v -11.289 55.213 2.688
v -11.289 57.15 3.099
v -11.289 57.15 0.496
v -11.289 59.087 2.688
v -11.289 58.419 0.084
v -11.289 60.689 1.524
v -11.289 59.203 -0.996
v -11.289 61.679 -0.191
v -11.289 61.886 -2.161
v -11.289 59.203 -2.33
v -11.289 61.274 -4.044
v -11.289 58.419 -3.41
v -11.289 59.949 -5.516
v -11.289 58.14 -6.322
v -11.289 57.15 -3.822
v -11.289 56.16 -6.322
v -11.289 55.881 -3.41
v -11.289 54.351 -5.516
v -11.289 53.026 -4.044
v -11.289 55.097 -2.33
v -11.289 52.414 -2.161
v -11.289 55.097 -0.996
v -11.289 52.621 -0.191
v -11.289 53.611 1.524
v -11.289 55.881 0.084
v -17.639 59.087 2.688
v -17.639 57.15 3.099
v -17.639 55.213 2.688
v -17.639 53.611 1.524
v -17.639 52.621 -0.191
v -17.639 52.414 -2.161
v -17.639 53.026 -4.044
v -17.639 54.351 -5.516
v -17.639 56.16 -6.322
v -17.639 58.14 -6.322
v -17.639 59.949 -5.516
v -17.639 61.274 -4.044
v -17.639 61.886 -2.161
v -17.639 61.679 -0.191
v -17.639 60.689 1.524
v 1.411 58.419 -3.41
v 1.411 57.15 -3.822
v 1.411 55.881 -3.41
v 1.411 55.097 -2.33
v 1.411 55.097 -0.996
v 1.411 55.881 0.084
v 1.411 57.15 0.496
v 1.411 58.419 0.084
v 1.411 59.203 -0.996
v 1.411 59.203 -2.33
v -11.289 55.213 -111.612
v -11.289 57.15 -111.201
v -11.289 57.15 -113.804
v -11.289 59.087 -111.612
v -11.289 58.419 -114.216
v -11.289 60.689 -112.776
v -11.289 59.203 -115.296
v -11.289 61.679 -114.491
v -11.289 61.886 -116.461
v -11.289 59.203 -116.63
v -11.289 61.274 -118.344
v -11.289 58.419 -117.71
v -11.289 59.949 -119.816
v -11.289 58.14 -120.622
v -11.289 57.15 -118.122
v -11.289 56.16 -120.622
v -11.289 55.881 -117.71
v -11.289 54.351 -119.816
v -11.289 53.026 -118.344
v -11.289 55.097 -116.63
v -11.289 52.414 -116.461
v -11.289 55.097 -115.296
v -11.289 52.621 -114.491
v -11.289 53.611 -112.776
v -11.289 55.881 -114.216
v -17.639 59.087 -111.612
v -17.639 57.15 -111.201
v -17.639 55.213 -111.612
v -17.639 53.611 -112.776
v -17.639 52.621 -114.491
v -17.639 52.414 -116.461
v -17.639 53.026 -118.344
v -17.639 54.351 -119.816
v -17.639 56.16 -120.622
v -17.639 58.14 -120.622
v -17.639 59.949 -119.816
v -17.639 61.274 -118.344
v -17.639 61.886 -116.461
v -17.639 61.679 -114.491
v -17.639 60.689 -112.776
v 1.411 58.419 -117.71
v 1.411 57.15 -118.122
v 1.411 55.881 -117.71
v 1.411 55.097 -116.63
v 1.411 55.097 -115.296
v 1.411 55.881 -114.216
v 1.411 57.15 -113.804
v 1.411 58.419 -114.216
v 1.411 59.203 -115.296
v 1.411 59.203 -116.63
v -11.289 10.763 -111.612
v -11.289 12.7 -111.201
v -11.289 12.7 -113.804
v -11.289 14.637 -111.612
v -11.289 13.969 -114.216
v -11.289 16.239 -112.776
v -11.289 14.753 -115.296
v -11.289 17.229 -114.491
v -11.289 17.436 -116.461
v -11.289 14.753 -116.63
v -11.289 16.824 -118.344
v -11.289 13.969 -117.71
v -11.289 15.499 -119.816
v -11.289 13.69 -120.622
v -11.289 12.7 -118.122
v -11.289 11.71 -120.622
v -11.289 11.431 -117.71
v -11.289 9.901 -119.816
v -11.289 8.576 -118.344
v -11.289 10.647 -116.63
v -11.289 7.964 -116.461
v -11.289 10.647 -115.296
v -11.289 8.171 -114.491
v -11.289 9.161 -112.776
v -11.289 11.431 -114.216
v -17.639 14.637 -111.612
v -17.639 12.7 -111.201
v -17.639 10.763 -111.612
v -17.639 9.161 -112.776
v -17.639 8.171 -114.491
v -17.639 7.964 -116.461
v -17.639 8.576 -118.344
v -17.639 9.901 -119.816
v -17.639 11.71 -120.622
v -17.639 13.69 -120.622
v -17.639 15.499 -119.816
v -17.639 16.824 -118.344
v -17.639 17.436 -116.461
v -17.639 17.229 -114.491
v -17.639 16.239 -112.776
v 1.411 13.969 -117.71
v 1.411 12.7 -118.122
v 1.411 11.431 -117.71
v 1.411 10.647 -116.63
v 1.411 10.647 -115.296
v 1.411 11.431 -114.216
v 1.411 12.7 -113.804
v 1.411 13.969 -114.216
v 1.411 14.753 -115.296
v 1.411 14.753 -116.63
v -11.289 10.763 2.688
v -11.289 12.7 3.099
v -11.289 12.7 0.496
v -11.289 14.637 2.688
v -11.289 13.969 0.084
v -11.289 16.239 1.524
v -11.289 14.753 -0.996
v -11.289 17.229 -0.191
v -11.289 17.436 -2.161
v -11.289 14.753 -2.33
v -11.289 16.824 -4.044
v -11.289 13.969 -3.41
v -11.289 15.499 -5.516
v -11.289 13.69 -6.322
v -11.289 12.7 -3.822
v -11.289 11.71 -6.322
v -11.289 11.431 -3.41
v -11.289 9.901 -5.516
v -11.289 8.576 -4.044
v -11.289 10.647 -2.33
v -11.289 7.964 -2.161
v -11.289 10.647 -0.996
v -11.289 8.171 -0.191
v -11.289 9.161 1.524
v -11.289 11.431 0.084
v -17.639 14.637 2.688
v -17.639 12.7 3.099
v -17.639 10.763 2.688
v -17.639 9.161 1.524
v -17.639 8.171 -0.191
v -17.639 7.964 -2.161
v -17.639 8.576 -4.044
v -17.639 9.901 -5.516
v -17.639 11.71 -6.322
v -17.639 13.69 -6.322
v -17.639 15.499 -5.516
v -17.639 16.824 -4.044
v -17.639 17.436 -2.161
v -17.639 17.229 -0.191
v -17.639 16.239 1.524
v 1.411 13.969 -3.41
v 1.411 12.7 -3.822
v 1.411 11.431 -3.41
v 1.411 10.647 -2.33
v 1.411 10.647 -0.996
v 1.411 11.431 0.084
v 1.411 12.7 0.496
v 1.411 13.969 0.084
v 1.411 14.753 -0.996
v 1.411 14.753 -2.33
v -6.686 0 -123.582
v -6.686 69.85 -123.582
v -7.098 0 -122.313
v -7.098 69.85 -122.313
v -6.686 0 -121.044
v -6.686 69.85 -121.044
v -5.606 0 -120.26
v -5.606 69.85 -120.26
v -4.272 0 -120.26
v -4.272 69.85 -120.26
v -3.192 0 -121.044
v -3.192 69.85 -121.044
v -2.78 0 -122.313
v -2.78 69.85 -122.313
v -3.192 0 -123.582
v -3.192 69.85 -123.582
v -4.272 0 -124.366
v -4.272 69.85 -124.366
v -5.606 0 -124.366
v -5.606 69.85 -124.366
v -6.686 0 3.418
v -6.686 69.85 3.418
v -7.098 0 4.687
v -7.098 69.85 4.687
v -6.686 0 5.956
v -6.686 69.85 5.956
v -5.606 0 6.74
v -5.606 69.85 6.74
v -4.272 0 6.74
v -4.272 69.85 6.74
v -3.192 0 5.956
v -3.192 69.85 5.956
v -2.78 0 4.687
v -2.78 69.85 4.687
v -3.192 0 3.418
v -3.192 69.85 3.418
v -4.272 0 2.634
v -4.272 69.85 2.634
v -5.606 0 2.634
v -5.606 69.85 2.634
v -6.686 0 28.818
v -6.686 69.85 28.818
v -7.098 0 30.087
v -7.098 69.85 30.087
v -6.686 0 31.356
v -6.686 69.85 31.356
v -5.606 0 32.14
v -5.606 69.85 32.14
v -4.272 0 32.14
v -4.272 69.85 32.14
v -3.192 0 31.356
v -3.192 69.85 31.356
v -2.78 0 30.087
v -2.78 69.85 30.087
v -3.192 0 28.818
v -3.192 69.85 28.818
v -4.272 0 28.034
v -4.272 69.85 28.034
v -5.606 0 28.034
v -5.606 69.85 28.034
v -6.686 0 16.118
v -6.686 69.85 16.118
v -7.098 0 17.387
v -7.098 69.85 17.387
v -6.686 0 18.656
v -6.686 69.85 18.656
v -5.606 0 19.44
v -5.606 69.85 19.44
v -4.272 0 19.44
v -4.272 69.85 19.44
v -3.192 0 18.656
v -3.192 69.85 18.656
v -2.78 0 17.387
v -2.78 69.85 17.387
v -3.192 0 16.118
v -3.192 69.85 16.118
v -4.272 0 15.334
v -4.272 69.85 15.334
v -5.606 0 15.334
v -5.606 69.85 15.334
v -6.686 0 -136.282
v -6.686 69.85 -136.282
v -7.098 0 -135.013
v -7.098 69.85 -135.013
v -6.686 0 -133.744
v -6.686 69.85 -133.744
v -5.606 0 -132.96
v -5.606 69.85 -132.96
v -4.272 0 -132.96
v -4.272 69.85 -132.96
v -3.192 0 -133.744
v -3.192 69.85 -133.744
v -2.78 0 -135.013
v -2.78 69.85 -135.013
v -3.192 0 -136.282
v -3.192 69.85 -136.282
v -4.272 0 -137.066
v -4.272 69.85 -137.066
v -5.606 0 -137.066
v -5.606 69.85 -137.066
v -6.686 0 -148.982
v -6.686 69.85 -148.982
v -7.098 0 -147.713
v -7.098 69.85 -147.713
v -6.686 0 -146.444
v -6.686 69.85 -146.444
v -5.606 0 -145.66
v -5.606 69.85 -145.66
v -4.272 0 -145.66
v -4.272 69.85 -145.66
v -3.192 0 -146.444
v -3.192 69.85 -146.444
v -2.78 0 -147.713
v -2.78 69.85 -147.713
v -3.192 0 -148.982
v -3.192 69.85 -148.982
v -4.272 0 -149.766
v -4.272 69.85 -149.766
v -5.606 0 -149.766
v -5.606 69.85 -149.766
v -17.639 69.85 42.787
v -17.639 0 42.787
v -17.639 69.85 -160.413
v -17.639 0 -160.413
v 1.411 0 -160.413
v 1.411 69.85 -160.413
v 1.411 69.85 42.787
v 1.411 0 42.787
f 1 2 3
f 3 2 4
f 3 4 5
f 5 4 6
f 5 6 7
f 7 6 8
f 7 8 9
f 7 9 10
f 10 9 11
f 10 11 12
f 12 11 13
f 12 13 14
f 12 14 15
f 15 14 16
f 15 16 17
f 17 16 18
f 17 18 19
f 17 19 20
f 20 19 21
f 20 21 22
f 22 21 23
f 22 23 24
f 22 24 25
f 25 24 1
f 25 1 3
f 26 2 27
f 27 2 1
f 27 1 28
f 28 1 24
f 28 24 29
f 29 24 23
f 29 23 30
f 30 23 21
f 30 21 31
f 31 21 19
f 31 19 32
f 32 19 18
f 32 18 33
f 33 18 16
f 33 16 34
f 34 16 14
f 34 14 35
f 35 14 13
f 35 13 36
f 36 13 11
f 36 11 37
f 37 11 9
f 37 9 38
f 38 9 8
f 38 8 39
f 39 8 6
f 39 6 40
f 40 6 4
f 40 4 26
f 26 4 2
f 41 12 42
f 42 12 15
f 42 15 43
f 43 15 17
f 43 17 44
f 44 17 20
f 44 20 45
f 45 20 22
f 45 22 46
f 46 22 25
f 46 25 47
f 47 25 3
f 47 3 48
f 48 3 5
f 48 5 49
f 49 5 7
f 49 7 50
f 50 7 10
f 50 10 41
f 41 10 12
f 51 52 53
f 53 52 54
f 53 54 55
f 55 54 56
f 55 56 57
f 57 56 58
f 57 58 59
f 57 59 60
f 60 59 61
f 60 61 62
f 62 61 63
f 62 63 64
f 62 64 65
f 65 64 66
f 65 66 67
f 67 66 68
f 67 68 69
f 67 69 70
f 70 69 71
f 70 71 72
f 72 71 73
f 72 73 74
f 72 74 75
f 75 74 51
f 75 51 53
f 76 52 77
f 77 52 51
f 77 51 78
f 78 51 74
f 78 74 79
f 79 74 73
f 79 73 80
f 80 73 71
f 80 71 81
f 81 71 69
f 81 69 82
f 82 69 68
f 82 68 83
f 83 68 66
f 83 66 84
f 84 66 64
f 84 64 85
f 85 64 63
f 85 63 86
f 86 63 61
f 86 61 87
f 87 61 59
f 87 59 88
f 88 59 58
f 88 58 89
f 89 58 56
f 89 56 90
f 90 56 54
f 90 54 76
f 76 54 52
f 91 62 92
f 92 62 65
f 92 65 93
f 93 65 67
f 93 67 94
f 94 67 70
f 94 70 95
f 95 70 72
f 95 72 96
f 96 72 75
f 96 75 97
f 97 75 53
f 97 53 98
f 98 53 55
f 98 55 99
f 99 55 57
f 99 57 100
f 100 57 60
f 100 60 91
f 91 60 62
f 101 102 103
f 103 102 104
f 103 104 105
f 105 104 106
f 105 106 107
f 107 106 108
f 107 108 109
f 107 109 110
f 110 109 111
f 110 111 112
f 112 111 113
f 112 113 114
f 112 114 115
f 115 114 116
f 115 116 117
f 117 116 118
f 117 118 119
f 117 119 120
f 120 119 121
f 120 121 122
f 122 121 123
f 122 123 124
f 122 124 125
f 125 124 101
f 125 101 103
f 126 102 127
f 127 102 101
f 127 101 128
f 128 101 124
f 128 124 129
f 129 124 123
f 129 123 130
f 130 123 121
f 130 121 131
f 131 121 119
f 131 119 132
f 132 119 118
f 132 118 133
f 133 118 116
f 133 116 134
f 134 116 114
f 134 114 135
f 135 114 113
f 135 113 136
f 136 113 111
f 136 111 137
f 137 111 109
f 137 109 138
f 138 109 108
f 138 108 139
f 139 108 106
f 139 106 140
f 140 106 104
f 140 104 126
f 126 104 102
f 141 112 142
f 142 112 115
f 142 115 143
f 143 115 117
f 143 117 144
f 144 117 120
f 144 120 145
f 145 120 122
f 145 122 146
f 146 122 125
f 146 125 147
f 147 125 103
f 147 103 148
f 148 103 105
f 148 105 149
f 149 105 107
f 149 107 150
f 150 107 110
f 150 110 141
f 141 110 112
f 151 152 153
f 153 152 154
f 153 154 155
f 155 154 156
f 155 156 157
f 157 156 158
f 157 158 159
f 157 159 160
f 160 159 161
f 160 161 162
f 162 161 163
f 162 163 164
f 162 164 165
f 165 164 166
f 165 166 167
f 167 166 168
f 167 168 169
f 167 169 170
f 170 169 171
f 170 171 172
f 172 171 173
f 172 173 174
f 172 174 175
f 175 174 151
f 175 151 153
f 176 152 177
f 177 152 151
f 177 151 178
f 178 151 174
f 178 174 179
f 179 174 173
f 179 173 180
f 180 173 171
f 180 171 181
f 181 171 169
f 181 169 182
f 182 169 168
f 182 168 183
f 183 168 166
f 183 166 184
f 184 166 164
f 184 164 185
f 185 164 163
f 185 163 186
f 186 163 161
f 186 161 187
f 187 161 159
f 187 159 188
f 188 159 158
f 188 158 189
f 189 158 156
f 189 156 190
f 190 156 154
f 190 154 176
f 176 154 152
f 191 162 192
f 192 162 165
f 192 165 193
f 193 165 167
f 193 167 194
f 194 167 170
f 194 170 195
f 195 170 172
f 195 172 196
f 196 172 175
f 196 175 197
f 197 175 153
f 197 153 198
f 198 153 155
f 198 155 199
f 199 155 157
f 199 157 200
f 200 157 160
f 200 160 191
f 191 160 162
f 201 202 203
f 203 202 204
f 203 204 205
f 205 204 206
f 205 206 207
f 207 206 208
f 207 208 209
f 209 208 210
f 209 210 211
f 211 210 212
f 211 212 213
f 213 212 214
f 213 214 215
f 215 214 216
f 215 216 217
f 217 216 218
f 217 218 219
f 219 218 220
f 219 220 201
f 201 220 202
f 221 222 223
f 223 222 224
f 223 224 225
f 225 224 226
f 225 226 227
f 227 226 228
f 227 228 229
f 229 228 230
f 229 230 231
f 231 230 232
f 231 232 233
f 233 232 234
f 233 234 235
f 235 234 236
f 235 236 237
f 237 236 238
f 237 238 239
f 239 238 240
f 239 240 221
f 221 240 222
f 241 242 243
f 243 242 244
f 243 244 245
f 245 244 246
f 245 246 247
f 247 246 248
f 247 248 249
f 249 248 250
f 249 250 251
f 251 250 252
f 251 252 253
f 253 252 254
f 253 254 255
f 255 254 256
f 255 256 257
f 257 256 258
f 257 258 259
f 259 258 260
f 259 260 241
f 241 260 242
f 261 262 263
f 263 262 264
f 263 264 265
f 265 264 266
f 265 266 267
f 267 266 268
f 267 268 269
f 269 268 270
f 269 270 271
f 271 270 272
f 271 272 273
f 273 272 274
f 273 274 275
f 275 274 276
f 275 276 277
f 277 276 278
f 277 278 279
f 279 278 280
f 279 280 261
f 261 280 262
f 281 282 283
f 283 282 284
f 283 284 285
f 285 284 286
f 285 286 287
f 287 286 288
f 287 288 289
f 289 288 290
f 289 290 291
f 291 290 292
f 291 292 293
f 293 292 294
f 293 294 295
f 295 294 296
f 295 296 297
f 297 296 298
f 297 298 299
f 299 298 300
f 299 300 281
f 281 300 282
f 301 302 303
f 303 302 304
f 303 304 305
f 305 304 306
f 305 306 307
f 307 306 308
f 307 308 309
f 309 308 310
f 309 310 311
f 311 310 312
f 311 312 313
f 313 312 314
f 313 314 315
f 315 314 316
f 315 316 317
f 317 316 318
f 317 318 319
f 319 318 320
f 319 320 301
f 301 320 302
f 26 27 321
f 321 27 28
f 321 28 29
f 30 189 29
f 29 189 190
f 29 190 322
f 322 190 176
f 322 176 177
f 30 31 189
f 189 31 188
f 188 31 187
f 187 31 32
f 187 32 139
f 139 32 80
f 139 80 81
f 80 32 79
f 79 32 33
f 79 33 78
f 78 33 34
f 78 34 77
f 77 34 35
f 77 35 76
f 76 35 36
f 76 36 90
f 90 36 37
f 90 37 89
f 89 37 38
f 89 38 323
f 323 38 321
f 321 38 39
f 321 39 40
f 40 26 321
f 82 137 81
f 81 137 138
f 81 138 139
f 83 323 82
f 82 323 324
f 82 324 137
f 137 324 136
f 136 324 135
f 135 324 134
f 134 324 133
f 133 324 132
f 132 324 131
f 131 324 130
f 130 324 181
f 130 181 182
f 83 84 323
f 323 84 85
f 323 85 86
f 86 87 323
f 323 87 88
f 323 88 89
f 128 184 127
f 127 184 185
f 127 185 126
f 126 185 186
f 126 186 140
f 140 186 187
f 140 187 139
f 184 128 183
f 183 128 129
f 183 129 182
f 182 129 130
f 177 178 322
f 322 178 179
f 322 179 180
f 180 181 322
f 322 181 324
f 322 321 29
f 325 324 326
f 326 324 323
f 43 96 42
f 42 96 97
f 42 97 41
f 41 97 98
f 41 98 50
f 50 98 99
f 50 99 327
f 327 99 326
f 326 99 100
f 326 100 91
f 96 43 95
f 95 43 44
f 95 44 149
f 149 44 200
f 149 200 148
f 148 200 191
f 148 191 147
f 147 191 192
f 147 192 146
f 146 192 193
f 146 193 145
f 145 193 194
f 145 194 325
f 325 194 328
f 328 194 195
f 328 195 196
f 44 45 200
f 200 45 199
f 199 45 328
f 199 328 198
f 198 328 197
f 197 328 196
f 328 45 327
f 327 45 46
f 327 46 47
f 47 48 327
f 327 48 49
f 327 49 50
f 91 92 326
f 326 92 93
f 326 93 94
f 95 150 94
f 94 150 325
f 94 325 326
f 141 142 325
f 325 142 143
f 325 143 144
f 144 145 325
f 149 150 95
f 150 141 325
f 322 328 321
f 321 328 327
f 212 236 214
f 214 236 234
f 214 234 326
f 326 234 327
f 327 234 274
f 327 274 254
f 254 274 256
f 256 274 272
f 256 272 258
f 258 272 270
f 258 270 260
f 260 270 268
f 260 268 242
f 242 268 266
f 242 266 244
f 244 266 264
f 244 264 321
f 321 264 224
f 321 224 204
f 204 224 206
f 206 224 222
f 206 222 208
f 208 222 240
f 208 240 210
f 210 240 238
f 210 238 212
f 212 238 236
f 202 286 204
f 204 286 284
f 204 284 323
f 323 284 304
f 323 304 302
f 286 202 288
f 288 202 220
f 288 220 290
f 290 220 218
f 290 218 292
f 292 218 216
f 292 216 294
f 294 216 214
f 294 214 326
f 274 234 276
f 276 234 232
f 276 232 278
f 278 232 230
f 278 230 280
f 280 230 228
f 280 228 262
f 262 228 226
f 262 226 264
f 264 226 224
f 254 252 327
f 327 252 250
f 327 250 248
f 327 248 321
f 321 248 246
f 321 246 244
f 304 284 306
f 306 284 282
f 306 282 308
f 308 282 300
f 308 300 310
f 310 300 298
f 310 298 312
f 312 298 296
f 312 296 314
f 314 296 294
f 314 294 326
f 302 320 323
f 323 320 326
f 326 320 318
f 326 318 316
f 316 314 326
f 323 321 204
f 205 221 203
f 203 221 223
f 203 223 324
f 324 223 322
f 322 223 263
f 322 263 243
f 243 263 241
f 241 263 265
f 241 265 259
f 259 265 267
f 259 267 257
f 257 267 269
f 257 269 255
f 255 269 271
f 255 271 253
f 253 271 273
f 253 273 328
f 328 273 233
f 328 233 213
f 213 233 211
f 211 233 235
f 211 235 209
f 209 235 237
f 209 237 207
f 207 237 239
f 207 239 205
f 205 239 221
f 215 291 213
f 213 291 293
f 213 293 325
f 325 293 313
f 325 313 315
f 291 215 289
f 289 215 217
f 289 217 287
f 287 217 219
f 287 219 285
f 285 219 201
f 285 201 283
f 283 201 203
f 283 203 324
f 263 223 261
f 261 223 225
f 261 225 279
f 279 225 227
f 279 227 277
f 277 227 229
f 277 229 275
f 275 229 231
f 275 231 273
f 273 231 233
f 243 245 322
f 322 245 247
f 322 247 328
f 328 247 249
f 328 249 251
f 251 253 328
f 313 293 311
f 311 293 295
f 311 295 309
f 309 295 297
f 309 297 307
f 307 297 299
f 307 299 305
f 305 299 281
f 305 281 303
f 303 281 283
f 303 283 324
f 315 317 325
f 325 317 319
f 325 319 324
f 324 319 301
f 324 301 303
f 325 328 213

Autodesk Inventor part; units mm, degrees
ref_plane "YZ Plane" through (0, 0, 0) normal (1, 0, 0) x (0, 1, 0)
ref_plane "XZ Plane" through (0, 0, 0) normal (0, 1, 0) x (-1, 0, 0)
ref_plane "XY Plane" through (0, 0, 0) normal (0, 0, 1) x (1, 0, 0)
sketch "Sketch1" plane through (0, 0, 0) normal (0, 1, 0) x (-1, 0, 0)
  line L0 (17.6389, 42.7869) -> (-1.4111, 42.7869)
  line L1 (-1.4111, 42.7869) -> (-1.4111, -160.4131)
  line L2 (-1.4111, -160.4131) -> (17.6389, -160.4131)
  line L3 (17.6389, -160.4131) -> (17.6389, 42.7869)
  point P0 (0, 0)
  dimension "d0" = 19.05
  dimension "d1" = 203.2
extrude "Extrusion1" add sketch "Sketch1" along normal blind 69.85
sketch "Sketch2" plane through (0, 69.85, 0) normal (0, 1, 0) x (1, 0, 0)
  line L0 (-17.6389, -42.7869) -> (1.4111, -42.7869) projected
  line L1 (1.4111, -42.7869) -> (1.4111, 160.4131) projected
  line L2 (1.4111, 160.4131) -> (-17.6389, 160.4131) projected
  point P0 (0, 0)
  point P1 (-4.9389, -30.0869)
  point P2 (-4.9389, -17.3869)
  point P3 (-4.9389, -4.6869)
  point P4 (-4.9389, 135.0131)
  point P5 (-4.9389, 122.3131)
  point P6 (-4.9389, 147.7131)
  dimension "d4" = 0
  dimension "d5" = 0
  dimension "d6" = 12.7
  dimension "d7" = 12.7
  dimension "d8" = 12.7
  dimension "d9" = 6.35
  dimension "d10" = 12.7
  dimension "d11" = 6.35
  dimension "d12" = 0
  dimension "d13" = 12.7
  dimension "d14" = 12.7
  dimension "d15" = 0
hole "Hole1" at (-4.9389, 69.85, 30.0869) at (-4.9389, 69.85, 17.3869) at (-4.9389, 69.85, 4.6869) at (-4.9389, 69.85, -135.0131) at (-4.9389, 69.85, -122.3131) at (-4.9389, 69.85, -147.7131) direction (0, -1, 0) diameter 4.318 end through all
sketch "Sketch3" plane through (-17.6389, 0, -160.4131) normal (-1, 0, 0) x (0, 0, 1)
  line L0 (101.6, 78.5929) -> (101.6, -10.5439)
  line L1 (0, 0) -> (0, 69.85) projected
  line L2 (203.2, 0) -> (0, 0) projected
  line L3 (0, 69.85) -> (203.2, 69.85) projected
  point P0 (160.4131, 0)
  point P1 (44.45, 57.15)
  point P2 (44.45, 12.7)
  point P3 (158.75, 57.15)
  point P4 (158.75, 12.7)
  dimension "d23" = 101.6
  dimension "d24" = 0
  dimension "d25" = 12.7
  dimension "d26" = 12.7
  dimension "d27" = 57.15
  dimension "d28" = 0
  dimension "d29" = 0
  dimension "d30" = 0
  dimension "d31" = 57.15
hole "Hole2" at (-17.6389, 57.15, -115.9631) at (-17.6389, 12.7, -115.9631) at (-17.6389, 57.15, -1.6631) at (-17.6389, 12.7, -1.6631) direction (1, 0, 0) diameter 4.318 depth 25.4 tip angle 118 counterbore diameter 9.525 counterbore depth 6.35
properties part number "BackBatteryPlate"
